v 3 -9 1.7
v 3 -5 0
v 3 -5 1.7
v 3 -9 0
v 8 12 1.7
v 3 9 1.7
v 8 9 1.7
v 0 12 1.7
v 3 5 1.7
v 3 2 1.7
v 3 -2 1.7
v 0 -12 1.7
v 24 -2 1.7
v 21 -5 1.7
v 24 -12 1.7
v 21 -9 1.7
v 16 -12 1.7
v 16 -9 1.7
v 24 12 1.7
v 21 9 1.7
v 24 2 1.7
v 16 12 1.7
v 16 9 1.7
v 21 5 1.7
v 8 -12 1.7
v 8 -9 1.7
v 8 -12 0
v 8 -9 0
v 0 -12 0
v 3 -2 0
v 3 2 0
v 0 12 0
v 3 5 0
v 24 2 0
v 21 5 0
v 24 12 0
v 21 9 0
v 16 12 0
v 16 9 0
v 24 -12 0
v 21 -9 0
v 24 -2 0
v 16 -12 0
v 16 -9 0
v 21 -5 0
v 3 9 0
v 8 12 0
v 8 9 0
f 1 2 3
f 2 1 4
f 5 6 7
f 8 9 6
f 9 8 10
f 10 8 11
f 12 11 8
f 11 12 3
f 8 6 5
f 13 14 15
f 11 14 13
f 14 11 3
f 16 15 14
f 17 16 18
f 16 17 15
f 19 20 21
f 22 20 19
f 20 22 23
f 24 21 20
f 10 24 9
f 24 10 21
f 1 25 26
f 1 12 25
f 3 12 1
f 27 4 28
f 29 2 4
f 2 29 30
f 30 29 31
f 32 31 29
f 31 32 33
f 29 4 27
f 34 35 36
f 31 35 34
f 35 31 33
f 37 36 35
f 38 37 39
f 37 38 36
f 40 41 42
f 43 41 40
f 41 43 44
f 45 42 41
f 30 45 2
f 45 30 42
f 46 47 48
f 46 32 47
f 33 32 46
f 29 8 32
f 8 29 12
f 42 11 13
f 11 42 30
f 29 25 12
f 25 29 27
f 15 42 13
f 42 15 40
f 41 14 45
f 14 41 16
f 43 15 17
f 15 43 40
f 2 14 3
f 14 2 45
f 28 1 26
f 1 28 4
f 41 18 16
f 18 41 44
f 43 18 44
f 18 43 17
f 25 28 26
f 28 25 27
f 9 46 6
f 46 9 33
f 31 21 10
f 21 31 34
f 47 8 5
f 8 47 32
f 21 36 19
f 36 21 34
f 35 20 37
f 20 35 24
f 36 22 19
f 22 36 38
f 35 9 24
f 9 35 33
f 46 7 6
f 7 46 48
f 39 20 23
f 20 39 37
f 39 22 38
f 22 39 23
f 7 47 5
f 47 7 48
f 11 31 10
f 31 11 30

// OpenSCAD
// Width of the three big holes in mm
holeWidth = 18; // [1:50]
// The height of the upper and lower hole in mm
holeHeight = 4; // [0.4:20]
// The width of the arms in mm
frameWidth = 3; // [1:10]
// The thickness of the part in mm
thickness = 1.7; // [0.5:5]
// The size of the two openings in mm
openingWidth = 8; // [1:40]
// The height of the middle hole in mm
centerHeight = 4; // [0.4:20]

module copy_mirror(vec)
{
    children();
    mirror(vec) children();
}

translate([ 0, -centerHeight / 2, 0 ]) cube([ frameWidth, centerHeight, thickness ]);

copy_mirror([ 0, 1, 0 ]) translate([ 0, -(holeHeight + frameWidth * 2 + centerHeight / 2), 0 ]) union()
{

    translate([ 0, frameWidth + holeHeight, 0 ]) cube([ holeWidth + frameWidth * 2, frameWidth, thickness ]);

    render() difference()
    {
        cube([ holeWidth + frameWidth * 2, frameWidth, thickness ]);
        translate([ frameWidth + ((holeWidth - openingWidth) / 2), 0, 0 ])
            cube([ openingWidth, frameWidth, thickness ]);
    }
    for (i = [ 0, frameWidth + holeWidth ])
        translate([ i, 0, 0 ]) cube([ frameWidth, holeHeight + frameWidth * 2, thickness ]);
}
